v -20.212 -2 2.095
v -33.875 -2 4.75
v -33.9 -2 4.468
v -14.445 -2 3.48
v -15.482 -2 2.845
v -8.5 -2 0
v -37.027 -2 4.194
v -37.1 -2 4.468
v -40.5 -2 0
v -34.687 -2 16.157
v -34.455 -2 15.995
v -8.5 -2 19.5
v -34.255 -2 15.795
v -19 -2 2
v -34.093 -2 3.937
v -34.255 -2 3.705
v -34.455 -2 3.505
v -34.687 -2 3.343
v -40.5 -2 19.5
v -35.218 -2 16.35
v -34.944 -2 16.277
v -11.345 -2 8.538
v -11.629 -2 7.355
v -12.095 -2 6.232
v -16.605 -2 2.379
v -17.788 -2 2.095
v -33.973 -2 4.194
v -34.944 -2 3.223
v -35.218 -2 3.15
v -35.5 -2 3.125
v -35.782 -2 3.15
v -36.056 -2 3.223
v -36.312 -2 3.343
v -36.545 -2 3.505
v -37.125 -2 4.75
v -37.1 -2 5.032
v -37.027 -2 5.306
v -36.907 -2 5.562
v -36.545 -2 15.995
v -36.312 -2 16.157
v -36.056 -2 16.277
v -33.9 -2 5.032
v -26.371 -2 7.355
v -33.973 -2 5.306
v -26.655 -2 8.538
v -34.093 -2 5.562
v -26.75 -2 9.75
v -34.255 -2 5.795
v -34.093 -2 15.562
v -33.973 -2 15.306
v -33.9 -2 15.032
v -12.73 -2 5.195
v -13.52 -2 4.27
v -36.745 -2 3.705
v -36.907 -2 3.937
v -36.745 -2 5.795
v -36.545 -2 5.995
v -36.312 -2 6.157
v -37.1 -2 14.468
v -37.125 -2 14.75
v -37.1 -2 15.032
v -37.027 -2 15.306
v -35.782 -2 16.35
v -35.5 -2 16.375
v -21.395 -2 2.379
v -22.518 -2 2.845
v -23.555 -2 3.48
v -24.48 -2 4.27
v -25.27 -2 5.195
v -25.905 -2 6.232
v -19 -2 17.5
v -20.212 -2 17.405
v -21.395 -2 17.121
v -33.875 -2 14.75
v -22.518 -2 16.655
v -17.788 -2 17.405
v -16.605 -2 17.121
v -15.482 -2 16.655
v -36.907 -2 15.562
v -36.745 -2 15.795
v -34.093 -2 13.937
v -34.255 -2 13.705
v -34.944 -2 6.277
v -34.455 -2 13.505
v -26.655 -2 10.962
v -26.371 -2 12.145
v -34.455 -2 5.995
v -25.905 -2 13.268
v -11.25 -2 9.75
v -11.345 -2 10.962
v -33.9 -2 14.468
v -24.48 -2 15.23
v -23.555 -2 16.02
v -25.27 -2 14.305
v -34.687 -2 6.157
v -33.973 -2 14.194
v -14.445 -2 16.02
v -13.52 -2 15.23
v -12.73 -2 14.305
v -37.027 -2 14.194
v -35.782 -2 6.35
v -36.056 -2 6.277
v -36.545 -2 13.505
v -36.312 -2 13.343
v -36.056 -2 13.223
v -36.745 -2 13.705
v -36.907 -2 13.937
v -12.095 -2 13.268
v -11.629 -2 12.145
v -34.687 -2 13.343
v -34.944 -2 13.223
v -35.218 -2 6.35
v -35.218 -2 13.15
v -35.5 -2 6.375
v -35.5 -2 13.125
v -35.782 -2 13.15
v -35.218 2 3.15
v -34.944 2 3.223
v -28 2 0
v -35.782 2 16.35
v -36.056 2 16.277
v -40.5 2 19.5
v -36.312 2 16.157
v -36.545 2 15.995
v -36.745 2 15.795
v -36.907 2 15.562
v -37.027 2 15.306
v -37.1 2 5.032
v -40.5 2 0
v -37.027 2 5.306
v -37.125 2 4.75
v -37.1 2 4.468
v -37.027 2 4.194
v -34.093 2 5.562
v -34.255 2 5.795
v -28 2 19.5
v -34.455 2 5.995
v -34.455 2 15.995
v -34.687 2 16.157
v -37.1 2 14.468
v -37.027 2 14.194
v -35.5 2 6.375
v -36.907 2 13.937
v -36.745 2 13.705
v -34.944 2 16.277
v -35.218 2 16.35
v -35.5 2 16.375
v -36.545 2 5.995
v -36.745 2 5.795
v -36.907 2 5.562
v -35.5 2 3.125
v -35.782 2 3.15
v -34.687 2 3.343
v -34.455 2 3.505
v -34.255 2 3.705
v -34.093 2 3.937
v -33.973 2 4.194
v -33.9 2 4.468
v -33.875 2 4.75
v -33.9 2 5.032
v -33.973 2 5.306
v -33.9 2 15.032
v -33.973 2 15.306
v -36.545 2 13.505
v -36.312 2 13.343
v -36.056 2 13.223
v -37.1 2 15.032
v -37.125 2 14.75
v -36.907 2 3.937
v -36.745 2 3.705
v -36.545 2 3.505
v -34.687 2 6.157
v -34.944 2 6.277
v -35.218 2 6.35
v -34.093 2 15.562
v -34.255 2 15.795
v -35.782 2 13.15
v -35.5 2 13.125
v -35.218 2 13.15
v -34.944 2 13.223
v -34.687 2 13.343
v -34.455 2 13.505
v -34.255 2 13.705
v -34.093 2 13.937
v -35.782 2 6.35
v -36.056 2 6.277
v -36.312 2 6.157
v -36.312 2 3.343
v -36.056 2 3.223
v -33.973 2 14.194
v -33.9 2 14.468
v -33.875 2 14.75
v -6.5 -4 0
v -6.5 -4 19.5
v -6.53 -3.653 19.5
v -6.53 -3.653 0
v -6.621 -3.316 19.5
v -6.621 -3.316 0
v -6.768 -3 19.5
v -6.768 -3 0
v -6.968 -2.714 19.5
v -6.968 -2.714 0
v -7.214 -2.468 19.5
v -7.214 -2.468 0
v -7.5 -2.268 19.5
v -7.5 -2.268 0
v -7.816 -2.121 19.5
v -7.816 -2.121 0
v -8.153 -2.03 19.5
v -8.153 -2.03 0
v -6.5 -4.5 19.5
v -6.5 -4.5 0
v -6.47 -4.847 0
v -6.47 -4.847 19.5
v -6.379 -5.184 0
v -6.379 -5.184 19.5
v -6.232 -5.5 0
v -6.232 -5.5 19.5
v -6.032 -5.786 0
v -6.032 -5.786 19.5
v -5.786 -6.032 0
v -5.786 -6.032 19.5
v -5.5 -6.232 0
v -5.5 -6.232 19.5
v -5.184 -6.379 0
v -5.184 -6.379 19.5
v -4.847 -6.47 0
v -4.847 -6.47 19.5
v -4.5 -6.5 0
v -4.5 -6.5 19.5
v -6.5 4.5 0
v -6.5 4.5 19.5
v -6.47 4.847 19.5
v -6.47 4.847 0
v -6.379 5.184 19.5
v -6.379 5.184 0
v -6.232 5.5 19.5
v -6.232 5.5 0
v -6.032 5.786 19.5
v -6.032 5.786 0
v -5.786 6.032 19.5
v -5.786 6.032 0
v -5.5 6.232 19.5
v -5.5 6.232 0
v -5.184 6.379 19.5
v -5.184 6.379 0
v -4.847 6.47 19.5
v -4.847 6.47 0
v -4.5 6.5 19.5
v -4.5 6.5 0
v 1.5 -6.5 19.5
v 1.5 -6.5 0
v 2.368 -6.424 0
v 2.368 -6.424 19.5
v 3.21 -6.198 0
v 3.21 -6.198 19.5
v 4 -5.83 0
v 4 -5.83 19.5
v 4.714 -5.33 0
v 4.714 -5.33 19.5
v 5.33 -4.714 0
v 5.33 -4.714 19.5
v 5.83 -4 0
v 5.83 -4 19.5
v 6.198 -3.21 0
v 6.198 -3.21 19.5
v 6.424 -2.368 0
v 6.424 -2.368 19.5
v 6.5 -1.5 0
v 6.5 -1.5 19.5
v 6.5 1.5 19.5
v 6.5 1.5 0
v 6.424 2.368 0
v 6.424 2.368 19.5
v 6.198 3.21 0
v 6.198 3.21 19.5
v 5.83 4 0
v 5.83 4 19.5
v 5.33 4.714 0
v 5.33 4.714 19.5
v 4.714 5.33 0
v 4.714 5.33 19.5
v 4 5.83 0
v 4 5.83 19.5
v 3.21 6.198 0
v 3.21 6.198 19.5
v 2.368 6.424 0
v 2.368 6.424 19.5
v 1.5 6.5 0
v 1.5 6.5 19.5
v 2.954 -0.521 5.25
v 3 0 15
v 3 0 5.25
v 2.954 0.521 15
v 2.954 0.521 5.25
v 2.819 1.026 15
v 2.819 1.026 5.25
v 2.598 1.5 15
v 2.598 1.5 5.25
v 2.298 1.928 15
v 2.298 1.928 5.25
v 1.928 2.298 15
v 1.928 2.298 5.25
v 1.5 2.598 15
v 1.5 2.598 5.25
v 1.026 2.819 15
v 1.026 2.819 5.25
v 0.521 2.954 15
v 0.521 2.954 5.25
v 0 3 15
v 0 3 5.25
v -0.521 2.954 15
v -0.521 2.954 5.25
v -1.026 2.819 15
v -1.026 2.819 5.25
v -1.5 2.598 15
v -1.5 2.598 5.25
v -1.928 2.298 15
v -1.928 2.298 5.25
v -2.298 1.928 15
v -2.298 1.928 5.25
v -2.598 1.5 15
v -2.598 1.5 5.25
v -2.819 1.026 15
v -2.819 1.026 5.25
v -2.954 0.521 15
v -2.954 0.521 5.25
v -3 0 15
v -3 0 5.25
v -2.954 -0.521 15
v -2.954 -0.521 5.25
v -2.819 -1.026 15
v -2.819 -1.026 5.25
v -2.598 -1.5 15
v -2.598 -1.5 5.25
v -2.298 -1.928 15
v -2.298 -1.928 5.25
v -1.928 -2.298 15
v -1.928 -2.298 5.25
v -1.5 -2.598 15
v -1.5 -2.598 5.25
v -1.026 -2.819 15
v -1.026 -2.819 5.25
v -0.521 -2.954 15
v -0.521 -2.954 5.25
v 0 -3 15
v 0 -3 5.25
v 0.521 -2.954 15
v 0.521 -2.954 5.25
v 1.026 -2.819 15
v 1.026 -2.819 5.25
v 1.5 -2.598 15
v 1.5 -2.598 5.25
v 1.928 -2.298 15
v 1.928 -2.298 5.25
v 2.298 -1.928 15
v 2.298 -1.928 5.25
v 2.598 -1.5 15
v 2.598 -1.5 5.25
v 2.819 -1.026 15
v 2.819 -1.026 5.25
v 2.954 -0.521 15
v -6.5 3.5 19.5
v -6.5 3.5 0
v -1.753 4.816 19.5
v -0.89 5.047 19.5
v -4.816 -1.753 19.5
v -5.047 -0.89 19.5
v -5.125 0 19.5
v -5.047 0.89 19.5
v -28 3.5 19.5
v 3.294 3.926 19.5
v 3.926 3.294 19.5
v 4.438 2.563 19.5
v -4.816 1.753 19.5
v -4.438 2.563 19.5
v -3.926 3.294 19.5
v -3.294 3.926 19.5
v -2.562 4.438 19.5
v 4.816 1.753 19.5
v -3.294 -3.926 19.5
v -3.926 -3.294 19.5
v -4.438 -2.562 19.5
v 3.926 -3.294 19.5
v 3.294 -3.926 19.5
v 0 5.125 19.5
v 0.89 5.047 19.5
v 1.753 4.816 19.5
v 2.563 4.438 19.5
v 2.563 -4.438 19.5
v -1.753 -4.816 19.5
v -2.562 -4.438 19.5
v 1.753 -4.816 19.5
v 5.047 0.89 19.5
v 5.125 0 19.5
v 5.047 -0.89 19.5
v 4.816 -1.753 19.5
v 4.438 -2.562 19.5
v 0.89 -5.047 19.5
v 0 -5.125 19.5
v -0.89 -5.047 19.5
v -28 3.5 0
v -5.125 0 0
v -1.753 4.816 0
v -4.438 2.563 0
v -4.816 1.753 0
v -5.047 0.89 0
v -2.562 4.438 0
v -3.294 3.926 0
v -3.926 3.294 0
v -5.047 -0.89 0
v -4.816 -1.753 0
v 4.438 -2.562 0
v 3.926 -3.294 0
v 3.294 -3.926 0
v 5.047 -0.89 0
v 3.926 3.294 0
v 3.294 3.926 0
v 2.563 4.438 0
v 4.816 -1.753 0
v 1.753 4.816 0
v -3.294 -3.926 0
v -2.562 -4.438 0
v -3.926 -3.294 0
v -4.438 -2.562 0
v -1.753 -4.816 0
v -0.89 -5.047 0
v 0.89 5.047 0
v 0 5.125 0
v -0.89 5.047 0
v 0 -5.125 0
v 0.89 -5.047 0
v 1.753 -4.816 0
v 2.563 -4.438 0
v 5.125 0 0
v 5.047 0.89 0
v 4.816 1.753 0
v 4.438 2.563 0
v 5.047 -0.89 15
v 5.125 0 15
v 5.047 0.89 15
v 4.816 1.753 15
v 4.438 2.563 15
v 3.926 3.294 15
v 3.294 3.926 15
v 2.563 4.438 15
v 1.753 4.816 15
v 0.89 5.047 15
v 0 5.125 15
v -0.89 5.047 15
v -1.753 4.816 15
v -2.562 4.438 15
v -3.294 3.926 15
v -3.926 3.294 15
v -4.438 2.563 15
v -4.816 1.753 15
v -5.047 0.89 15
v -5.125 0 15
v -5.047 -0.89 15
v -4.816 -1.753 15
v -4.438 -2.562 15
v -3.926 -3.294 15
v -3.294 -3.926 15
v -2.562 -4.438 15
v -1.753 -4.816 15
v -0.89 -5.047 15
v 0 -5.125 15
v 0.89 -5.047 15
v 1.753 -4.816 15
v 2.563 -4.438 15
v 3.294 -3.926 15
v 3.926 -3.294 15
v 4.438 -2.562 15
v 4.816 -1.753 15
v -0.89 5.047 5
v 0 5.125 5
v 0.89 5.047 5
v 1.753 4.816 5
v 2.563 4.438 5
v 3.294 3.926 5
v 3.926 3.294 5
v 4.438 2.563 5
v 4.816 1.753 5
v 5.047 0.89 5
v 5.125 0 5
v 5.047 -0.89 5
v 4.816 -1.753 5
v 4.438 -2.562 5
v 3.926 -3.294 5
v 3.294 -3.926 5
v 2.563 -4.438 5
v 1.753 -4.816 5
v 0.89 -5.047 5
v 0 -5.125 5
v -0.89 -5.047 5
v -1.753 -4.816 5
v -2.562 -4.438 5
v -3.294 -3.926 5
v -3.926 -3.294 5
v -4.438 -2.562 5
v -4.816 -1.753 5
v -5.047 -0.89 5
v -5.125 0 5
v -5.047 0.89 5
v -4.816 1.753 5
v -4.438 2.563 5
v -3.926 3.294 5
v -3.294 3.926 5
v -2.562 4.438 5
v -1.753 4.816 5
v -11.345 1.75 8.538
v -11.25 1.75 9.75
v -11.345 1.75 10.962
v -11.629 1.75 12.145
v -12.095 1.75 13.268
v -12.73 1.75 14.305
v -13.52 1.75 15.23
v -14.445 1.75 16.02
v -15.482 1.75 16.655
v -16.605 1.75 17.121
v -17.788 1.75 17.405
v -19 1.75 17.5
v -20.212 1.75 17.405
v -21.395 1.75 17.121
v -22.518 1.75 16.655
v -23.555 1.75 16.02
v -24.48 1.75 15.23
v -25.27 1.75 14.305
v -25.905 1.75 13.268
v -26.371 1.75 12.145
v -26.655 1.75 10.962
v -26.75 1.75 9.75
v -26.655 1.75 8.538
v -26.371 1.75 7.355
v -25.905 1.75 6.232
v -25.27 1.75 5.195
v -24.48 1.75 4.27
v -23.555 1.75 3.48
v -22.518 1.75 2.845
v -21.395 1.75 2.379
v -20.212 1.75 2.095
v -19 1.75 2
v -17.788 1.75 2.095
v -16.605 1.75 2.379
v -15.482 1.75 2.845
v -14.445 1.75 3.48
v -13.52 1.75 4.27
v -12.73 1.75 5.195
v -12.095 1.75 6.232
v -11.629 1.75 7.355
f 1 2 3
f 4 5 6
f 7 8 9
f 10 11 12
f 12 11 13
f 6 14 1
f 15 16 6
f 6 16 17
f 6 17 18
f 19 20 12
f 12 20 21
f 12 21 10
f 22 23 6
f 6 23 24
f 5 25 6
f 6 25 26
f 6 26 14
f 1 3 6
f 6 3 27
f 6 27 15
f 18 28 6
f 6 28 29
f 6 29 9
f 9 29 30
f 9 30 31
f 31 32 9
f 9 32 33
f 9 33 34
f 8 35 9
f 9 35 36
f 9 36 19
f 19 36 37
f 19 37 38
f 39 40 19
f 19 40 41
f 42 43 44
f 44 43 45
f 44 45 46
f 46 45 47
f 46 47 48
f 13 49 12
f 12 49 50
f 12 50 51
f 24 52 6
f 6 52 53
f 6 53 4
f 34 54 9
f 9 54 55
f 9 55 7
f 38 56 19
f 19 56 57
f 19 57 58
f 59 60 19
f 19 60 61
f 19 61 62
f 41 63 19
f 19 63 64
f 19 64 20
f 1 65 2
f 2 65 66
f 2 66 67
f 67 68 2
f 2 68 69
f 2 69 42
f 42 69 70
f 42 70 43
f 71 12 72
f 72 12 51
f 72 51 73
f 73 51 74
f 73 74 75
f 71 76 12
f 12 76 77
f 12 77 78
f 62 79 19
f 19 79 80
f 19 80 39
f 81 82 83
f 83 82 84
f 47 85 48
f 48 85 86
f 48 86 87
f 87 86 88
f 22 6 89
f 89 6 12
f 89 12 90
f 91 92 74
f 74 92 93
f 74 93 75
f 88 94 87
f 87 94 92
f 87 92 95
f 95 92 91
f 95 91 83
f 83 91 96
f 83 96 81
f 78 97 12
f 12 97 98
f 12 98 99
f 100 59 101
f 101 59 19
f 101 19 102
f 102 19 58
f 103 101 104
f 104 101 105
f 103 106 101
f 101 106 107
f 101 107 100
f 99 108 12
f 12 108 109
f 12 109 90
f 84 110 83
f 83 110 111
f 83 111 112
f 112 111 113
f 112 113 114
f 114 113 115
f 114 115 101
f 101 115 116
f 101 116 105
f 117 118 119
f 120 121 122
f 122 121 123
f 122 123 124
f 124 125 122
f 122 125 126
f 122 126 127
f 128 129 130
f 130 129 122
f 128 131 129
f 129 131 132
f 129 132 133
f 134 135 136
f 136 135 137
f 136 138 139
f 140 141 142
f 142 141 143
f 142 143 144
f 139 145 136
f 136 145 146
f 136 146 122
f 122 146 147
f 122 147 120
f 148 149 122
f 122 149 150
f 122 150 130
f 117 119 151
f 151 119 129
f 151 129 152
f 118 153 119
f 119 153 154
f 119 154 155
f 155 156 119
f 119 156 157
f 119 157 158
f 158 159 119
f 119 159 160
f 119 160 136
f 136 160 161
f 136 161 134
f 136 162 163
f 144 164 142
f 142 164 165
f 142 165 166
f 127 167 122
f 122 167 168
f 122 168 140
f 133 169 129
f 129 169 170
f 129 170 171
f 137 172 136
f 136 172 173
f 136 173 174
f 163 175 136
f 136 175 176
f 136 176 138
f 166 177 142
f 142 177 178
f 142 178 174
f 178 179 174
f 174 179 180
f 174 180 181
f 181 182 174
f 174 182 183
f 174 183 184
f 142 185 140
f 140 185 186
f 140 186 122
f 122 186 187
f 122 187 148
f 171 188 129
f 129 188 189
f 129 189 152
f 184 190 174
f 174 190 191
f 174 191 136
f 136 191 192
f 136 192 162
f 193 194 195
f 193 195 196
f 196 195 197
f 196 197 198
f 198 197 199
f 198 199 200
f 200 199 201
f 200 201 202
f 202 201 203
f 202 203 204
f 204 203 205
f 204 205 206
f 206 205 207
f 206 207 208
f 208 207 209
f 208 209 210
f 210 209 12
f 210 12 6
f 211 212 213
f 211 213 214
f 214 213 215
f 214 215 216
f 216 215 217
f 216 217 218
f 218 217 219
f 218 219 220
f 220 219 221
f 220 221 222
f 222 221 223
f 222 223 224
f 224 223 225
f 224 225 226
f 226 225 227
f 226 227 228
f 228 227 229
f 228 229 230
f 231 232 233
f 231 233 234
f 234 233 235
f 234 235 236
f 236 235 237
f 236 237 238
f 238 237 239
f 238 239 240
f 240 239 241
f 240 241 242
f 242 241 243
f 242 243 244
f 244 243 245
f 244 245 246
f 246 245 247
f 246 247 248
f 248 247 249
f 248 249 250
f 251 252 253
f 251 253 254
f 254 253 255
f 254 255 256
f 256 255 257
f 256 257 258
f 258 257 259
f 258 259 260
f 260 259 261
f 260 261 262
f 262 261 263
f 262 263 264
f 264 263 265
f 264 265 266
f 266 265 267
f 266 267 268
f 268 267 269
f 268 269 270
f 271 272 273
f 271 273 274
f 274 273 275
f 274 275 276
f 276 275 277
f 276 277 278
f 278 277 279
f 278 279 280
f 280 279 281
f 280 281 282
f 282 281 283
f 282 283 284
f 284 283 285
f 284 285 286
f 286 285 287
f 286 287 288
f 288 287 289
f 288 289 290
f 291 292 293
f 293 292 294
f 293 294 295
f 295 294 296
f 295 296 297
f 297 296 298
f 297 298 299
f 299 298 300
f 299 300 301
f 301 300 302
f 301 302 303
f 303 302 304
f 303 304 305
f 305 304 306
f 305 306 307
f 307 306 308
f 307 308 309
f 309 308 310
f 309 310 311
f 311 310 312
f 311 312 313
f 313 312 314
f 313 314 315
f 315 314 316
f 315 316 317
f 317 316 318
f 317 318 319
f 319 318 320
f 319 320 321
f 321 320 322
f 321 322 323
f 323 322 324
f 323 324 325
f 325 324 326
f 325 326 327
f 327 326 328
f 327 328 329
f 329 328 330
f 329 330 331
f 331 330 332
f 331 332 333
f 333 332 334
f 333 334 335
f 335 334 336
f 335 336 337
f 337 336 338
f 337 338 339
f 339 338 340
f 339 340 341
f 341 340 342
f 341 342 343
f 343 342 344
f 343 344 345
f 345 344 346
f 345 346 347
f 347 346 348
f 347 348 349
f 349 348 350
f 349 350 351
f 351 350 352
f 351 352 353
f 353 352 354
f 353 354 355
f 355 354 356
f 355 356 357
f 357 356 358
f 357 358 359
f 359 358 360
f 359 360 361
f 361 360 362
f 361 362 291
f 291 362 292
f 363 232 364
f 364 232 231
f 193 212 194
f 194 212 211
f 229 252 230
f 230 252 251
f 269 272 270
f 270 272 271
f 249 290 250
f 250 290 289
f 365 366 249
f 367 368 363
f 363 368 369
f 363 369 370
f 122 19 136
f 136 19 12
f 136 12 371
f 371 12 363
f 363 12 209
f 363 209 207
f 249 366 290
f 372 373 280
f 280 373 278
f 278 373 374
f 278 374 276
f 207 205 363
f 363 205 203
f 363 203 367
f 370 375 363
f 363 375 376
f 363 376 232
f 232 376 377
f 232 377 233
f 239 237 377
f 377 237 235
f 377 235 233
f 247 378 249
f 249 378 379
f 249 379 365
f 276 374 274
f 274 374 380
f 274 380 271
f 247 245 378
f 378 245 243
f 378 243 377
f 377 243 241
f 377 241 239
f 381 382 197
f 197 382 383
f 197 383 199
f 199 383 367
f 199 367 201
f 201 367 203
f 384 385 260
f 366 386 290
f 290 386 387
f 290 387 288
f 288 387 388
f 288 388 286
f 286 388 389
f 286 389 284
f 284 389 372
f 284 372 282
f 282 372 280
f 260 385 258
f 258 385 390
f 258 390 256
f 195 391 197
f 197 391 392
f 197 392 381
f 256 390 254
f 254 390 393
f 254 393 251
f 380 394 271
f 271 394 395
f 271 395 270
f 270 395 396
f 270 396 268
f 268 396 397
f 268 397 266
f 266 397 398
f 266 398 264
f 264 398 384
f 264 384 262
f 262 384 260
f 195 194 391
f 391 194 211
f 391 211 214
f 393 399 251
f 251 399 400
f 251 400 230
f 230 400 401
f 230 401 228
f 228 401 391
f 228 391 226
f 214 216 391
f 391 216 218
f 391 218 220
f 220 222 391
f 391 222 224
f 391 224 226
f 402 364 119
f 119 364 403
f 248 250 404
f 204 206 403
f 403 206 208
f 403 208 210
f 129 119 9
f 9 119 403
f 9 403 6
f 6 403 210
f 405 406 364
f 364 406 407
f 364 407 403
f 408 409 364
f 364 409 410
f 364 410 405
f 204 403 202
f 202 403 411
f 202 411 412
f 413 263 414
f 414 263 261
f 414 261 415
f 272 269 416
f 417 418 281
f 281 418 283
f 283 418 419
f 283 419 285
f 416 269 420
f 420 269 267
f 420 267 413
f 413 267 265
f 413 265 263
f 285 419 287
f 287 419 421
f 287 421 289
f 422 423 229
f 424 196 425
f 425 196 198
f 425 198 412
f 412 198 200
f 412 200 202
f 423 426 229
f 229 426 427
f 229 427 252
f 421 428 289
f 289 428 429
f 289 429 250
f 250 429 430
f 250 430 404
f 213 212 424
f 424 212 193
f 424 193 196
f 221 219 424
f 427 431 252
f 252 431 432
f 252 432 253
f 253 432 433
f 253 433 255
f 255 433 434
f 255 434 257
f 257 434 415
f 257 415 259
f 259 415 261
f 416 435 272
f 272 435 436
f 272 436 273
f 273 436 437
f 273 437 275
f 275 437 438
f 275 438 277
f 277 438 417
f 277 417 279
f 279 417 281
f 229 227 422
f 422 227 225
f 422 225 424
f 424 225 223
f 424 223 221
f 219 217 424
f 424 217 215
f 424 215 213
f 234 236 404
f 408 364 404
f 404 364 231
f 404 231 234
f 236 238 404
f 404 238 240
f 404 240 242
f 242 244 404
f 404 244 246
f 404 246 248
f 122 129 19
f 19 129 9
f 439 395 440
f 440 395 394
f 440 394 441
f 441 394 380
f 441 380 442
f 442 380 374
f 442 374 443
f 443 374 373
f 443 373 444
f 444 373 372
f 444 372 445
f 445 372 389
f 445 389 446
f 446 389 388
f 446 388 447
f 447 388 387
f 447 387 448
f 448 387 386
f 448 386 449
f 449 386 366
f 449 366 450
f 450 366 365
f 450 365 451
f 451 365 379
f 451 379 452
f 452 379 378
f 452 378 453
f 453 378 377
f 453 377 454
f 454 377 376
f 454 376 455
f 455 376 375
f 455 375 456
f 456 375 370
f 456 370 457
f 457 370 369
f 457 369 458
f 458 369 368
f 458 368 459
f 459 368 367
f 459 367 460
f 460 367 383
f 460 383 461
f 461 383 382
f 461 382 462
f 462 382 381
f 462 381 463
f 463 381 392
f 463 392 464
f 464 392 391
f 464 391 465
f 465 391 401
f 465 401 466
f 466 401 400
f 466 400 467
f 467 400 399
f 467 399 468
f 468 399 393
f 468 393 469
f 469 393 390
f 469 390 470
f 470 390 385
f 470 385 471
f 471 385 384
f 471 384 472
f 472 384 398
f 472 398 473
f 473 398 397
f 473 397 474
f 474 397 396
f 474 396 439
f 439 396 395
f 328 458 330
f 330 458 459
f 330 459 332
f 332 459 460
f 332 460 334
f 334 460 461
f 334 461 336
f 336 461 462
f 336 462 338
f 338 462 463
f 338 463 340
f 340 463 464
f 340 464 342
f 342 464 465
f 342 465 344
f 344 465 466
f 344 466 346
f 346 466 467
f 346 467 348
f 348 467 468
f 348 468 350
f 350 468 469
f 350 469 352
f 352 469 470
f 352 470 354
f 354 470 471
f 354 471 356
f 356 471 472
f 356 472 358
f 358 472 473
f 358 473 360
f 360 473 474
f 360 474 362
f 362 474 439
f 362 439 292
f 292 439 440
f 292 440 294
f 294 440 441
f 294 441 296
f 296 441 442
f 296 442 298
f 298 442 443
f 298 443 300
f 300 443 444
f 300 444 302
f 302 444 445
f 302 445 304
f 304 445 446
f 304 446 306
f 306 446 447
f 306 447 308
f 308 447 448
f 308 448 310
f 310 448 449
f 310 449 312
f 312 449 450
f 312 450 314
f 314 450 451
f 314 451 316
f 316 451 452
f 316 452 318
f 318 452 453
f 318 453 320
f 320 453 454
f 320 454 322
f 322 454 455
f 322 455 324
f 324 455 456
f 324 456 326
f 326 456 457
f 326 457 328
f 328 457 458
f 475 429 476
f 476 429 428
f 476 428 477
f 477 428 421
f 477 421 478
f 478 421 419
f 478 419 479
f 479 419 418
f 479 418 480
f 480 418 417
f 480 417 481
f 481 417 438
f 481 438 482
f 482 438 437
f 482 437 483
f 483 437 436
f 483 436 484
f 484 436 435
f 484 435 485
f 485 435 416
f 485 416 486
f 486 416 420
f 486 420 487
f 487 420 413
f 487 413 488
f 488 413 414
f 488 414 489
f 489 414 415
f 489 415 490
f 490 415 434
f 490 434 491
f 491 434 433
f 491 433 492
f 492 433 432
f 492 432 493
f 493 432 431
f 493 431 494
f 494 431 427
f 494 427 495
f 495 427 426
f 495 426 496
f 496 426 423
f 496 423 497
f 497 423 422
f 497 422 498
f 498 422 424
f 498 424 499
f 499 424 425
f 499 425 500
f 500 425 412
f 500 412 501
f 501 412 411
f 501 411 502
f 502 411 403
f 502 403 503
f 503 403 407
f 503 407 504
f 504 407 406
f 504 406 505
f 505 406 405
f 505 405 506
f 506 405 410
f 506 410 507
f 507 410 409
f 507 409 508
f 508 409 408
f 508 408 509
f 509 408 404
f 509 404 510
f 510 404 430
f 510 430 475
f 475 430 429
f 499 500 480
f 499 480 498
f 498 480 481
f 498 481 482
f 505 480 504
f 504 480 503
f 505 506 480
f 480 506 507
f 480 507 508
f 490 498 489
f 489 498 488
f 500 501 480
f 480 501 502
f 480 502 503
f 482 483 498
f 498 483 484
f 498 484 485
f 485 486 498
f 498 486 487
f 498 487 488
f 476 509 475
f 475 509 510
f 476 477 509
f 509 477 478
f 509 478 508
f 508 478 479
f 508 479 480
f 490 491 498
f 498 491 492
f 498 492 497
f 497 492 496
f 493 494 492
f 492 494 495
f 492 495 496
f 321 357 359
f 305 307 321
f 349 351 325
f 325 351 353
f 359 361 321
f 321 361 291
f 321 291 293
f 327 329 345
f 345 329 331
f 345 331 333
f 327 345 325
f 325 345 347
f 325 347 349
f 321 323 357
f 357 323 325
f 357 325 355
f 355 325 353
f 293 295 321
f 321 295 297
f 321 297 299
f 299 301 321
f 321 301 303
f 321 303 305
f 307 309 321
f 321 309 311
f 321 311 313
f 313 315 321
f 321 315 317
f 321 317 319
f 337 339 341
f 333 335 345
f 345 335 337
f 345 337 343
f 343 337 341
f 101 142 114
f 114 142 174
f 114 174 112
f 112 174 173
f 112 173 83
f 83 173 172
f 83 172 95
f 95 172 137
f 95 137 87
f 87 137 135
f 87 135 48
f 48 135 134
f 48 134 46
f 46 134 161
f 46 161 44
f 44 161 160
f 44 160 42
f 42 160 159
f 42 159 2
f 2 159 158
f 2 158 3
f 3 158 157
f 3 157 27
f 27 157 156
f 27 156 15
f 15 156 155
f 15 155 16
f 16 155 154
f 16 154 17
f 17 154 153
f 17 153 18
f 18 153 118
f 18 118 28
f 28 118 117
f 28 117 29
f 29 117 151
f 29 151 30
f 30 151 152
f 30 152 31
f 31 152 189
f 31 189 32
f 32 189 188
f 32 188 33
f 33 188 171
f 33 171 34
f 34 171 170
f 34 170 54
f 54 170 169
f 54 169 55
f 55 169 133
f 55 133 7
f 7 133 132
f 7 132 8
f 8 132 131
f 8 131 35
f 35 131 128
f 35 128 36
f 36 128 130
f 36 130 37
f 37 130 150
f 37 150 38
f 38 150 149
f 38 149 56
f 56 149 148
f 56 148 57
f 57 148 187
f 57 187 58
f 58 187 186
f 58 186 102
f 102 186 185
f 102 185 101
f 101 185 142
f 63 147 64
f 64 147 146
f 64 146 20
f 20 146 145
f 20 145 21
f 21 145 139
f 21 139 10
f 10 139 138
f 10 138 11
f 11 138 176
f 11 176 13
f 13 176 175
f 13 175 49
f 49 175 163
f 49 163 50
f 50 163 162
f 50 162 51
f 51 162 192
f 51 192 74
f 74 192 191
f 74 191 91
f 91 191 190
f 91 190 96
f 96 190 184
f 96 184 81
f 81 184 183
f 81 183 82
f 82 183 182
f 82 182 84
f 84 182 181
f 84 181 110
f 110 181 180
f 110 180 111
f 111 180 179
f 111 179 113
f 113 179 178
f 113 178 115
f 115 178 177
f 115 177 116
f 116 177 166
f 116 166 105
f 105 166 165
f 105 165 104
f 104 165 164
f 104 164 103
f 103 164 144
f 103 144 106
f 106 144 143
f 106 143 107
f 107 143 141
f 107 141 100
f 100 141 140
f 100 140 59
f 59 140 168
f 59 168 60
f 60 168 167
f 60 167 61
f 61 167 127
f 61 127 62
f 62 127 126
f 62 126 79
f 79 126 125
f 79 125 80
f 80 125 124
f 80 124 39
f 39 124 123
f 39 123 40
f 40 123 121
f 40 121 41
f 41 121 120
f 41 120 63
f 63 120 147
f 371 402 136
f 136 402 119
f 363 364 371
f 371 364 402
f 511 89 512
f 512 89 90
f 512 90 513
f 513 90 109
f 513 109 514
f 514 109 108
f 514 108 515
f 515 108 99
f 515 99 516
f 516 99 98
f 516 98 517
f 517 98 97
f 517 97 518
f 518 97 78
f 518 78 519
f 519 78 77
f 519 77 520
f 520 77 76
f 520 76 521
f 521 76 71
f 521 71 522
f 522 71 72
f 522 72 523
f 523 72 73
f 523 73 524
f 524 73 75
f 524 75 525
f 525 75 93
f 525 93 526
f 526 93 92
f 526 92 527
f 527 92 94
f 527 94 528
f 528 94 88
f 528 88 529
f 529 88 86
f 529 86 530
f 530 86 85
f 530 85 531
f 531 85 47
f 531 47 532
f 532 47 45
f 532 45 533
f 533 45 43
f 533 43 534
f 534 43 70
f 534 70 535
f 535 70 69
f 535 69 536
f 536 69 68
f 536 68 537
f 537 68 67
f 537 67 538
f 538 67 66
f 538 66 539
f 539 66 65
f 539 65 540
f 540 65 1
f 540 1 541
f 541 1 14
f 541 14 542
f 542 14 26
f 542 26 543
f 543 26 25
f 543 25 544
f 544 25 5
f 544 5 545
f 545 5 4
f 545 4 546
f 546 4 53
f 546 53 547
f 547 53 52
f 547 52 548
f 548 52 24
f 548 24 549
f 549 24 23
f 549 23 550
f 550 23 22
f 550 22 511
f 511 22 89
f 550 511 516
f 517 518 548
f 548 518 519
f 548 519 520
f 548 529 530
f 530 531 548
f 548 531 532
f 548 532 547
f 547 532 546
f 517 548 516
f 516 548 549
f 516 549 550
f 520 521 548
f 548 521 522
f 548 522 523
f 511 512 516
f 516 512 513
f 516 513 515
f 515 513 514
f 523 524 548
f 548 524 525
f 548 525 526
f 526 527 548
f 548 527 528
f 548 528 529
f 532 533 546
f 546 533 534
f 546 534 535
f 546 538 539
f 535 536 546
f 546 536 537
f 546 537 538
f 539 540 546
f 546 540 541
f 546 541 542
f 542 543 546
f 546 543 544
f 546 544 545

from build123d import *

# Parameters (mm, degrees)
SKETCH1_W                = 13
SKETCH1_H                = 13
BALL_BEARING_BLOCK_DEPTH = 19.5
SKETCH2_W                = 34
SKETCH2_H                = 4
PADDLE_PLATE_DEPTH       = 19.5
SKETCH3_R                = 5.125
BALLBEARING_1_DEPTH      = 4.5
BALLBEARING_START        = -5
SKETCH4_R                = 5.125
BALLBEARING_2_DEPTH      = 5
SKETCH5_R                = 3
ACHSE_DEPTH              = 10
ACHSE_START              = -0.25
SKETCH9_R                = 3
ACHSE_CLOSER_DEPTH       = 0.25
FILLET1_R                = 5
FILLET2_R                = 5
FILLET3_R                = 2
FILLET4_R                = 2
FILLET7_R                = 2
SKETCH6_R                = 1.625
M3_PADDLE_SCREWS_DEPTH   = 4
SKETCH8_W                = 21.5
SKETCH8_H                = 19.5
TOP_PLATE_DEPTH          = 1.5
SKETCH7_R                = 7.75
MAGNET_POCKET_DEPTH      = 3.75


with BuildPart() as part:
    # Sketch1 → Ball Bearing Block (new body)
    with BuildSketch(Plane.XY):
        Rectangle(SKETCH1_W, SKETCH1_H)
    extrude(amount=BALL_BEARING_BLOCK_DEPTH)

    # Sketch2 → Paddle Plate (add)
    with BuildSketch(Plane(origin=(0, 0, 0), x_dir=(1, 0, 0), z_dir=(0, 0, -1))):
        with Locations((-23.5, 0)):
            Rectangle(SKETCH2_W, SKETCH2_H)
    extrude(amount=-PADDLE_PLATE_DEPTH)

    # Sketch3 → Ballbearing 1 (cut)
    with BuildSketch(Plane.XY.offset(19.5)):
        Circle(SKETCH3_R)
    extrude(amount=-BALLBEARING_1_DEPTH, mode=Mode.SUBTRACT)

    # Sketch4 → Ballbearing 2 (cut)
    with BuildSketch(Plane(origin=(0, 0, 0), x_dir=(1, 0, 0), z_dir=(0, 0, -1)).offset(BALLBEARING_START)):
        Circle(SKETCH4_R)
    extrude(amount=BALLBEARING_2_DEPTH, mode=Mode.SUBTRACT)

    # Sketch5 → Achse (cut)
    with BuildSketch(Plane.XY.offset(15)):
        Circle(SKETCH5_R)
    extrude(amount=-ACHSE_DEPTH, mode=Mode.SUBTRACT)

    # Sketch9 → Achse Closer (add)
    with BuildSketch(Plane(origin=(0, 0, 5), x_dir=(-1, 0, 0), z_dir=(0, 0, -1)).offset(ACHSE_START)):
        with Locations(Location((0, 0, 0), (0, 0, 180))):
            Circle(SKETCH9_R)
    extrude(amount=ACHSE_CLOSER_DEPTH)

    # Fillet1
    fillet1_edges = [part.edges().sort_by_distance(p)[0] for p in [
        (6.5, 6.5, 9.75),
    ]]
    fillet(fillet1_edges, radius=FILLET1_R)

    # Fillet2
    fillet2_edges = [part.edges().sort_by_distance(p)[0] for p in [
        (6.5, -6.5, 9.75),
    ]]
    fillet(fillet2_edges, radius=FILLET2_R)

    # Fillet3
    fillet3_edges = [part.edges().sort_by_distance(p)[0] for p in [
        (-6.5, 6.5, 9.75),
    ]]
    fillet(fillet3_edges, radius=FILLET3_R)

    # Fillet4
    fillet4_edges = [part.edges().sort_by_distance(p)[0] for p in [
        (-6.5, -6.5, 9.75),
    ]]
    fillet(fillet4_edges, radius=FILLET4_R)

    # Fillet7
    fillet7_edges = [part.edges().sort_by_distance(p)[0] for p in [
        (-6.5, -2, 9.75),
    ]]
    fillet(fillet7_edges, radius=FILLET7_R)

    # Sketch6 → M3 Paddle Screws (cut)
    with BuildSketch(Plane(origin=(0, 2, 0), x_dir=(-1, 0, 0), z_dir=(0, 1, 0))):
        with Locations(Location((35.5, 4.75, 0), (0, 0, 90))):
            Circle(SKETCH6_R)
        with Locations(Location((35.5, 14.75, 0), (0, 0, 180))):
            Circle(SKETCH6_R)
    extrude(amount=-M3_PADDLE_SCREWS_DEPTH, mode=Mode.SUBTRACT)

    # Sketch8 → Top Plate (add)
    with BuildSketch(Plane(origin=(0, 2, 0), x_dir=(-1, 0, 0), z_dir=(0, 1, 0))):
        with Locations((17.25, 9.75)):
            Rectangle(SKETCH8_W, SKETCH8_H)
    extrude(amount=TOP_PLATE_DEPTH)

    # Sketch7 → Magnet Pocket (cut)
    with BuildSketch(Plane(origin=(0, -2, 0), x_dir=(-1, 0, 0), z_dir=(0, 1, 0))):
        with Locations(Location((19, 9.75, 0), (0, 0, 90))):
            Circle(SKETCH7_R)
    extrude(amount=MAGNET_POCKET_DEPTH, mode=Mode.SUBTRACT)


solid = part.part
